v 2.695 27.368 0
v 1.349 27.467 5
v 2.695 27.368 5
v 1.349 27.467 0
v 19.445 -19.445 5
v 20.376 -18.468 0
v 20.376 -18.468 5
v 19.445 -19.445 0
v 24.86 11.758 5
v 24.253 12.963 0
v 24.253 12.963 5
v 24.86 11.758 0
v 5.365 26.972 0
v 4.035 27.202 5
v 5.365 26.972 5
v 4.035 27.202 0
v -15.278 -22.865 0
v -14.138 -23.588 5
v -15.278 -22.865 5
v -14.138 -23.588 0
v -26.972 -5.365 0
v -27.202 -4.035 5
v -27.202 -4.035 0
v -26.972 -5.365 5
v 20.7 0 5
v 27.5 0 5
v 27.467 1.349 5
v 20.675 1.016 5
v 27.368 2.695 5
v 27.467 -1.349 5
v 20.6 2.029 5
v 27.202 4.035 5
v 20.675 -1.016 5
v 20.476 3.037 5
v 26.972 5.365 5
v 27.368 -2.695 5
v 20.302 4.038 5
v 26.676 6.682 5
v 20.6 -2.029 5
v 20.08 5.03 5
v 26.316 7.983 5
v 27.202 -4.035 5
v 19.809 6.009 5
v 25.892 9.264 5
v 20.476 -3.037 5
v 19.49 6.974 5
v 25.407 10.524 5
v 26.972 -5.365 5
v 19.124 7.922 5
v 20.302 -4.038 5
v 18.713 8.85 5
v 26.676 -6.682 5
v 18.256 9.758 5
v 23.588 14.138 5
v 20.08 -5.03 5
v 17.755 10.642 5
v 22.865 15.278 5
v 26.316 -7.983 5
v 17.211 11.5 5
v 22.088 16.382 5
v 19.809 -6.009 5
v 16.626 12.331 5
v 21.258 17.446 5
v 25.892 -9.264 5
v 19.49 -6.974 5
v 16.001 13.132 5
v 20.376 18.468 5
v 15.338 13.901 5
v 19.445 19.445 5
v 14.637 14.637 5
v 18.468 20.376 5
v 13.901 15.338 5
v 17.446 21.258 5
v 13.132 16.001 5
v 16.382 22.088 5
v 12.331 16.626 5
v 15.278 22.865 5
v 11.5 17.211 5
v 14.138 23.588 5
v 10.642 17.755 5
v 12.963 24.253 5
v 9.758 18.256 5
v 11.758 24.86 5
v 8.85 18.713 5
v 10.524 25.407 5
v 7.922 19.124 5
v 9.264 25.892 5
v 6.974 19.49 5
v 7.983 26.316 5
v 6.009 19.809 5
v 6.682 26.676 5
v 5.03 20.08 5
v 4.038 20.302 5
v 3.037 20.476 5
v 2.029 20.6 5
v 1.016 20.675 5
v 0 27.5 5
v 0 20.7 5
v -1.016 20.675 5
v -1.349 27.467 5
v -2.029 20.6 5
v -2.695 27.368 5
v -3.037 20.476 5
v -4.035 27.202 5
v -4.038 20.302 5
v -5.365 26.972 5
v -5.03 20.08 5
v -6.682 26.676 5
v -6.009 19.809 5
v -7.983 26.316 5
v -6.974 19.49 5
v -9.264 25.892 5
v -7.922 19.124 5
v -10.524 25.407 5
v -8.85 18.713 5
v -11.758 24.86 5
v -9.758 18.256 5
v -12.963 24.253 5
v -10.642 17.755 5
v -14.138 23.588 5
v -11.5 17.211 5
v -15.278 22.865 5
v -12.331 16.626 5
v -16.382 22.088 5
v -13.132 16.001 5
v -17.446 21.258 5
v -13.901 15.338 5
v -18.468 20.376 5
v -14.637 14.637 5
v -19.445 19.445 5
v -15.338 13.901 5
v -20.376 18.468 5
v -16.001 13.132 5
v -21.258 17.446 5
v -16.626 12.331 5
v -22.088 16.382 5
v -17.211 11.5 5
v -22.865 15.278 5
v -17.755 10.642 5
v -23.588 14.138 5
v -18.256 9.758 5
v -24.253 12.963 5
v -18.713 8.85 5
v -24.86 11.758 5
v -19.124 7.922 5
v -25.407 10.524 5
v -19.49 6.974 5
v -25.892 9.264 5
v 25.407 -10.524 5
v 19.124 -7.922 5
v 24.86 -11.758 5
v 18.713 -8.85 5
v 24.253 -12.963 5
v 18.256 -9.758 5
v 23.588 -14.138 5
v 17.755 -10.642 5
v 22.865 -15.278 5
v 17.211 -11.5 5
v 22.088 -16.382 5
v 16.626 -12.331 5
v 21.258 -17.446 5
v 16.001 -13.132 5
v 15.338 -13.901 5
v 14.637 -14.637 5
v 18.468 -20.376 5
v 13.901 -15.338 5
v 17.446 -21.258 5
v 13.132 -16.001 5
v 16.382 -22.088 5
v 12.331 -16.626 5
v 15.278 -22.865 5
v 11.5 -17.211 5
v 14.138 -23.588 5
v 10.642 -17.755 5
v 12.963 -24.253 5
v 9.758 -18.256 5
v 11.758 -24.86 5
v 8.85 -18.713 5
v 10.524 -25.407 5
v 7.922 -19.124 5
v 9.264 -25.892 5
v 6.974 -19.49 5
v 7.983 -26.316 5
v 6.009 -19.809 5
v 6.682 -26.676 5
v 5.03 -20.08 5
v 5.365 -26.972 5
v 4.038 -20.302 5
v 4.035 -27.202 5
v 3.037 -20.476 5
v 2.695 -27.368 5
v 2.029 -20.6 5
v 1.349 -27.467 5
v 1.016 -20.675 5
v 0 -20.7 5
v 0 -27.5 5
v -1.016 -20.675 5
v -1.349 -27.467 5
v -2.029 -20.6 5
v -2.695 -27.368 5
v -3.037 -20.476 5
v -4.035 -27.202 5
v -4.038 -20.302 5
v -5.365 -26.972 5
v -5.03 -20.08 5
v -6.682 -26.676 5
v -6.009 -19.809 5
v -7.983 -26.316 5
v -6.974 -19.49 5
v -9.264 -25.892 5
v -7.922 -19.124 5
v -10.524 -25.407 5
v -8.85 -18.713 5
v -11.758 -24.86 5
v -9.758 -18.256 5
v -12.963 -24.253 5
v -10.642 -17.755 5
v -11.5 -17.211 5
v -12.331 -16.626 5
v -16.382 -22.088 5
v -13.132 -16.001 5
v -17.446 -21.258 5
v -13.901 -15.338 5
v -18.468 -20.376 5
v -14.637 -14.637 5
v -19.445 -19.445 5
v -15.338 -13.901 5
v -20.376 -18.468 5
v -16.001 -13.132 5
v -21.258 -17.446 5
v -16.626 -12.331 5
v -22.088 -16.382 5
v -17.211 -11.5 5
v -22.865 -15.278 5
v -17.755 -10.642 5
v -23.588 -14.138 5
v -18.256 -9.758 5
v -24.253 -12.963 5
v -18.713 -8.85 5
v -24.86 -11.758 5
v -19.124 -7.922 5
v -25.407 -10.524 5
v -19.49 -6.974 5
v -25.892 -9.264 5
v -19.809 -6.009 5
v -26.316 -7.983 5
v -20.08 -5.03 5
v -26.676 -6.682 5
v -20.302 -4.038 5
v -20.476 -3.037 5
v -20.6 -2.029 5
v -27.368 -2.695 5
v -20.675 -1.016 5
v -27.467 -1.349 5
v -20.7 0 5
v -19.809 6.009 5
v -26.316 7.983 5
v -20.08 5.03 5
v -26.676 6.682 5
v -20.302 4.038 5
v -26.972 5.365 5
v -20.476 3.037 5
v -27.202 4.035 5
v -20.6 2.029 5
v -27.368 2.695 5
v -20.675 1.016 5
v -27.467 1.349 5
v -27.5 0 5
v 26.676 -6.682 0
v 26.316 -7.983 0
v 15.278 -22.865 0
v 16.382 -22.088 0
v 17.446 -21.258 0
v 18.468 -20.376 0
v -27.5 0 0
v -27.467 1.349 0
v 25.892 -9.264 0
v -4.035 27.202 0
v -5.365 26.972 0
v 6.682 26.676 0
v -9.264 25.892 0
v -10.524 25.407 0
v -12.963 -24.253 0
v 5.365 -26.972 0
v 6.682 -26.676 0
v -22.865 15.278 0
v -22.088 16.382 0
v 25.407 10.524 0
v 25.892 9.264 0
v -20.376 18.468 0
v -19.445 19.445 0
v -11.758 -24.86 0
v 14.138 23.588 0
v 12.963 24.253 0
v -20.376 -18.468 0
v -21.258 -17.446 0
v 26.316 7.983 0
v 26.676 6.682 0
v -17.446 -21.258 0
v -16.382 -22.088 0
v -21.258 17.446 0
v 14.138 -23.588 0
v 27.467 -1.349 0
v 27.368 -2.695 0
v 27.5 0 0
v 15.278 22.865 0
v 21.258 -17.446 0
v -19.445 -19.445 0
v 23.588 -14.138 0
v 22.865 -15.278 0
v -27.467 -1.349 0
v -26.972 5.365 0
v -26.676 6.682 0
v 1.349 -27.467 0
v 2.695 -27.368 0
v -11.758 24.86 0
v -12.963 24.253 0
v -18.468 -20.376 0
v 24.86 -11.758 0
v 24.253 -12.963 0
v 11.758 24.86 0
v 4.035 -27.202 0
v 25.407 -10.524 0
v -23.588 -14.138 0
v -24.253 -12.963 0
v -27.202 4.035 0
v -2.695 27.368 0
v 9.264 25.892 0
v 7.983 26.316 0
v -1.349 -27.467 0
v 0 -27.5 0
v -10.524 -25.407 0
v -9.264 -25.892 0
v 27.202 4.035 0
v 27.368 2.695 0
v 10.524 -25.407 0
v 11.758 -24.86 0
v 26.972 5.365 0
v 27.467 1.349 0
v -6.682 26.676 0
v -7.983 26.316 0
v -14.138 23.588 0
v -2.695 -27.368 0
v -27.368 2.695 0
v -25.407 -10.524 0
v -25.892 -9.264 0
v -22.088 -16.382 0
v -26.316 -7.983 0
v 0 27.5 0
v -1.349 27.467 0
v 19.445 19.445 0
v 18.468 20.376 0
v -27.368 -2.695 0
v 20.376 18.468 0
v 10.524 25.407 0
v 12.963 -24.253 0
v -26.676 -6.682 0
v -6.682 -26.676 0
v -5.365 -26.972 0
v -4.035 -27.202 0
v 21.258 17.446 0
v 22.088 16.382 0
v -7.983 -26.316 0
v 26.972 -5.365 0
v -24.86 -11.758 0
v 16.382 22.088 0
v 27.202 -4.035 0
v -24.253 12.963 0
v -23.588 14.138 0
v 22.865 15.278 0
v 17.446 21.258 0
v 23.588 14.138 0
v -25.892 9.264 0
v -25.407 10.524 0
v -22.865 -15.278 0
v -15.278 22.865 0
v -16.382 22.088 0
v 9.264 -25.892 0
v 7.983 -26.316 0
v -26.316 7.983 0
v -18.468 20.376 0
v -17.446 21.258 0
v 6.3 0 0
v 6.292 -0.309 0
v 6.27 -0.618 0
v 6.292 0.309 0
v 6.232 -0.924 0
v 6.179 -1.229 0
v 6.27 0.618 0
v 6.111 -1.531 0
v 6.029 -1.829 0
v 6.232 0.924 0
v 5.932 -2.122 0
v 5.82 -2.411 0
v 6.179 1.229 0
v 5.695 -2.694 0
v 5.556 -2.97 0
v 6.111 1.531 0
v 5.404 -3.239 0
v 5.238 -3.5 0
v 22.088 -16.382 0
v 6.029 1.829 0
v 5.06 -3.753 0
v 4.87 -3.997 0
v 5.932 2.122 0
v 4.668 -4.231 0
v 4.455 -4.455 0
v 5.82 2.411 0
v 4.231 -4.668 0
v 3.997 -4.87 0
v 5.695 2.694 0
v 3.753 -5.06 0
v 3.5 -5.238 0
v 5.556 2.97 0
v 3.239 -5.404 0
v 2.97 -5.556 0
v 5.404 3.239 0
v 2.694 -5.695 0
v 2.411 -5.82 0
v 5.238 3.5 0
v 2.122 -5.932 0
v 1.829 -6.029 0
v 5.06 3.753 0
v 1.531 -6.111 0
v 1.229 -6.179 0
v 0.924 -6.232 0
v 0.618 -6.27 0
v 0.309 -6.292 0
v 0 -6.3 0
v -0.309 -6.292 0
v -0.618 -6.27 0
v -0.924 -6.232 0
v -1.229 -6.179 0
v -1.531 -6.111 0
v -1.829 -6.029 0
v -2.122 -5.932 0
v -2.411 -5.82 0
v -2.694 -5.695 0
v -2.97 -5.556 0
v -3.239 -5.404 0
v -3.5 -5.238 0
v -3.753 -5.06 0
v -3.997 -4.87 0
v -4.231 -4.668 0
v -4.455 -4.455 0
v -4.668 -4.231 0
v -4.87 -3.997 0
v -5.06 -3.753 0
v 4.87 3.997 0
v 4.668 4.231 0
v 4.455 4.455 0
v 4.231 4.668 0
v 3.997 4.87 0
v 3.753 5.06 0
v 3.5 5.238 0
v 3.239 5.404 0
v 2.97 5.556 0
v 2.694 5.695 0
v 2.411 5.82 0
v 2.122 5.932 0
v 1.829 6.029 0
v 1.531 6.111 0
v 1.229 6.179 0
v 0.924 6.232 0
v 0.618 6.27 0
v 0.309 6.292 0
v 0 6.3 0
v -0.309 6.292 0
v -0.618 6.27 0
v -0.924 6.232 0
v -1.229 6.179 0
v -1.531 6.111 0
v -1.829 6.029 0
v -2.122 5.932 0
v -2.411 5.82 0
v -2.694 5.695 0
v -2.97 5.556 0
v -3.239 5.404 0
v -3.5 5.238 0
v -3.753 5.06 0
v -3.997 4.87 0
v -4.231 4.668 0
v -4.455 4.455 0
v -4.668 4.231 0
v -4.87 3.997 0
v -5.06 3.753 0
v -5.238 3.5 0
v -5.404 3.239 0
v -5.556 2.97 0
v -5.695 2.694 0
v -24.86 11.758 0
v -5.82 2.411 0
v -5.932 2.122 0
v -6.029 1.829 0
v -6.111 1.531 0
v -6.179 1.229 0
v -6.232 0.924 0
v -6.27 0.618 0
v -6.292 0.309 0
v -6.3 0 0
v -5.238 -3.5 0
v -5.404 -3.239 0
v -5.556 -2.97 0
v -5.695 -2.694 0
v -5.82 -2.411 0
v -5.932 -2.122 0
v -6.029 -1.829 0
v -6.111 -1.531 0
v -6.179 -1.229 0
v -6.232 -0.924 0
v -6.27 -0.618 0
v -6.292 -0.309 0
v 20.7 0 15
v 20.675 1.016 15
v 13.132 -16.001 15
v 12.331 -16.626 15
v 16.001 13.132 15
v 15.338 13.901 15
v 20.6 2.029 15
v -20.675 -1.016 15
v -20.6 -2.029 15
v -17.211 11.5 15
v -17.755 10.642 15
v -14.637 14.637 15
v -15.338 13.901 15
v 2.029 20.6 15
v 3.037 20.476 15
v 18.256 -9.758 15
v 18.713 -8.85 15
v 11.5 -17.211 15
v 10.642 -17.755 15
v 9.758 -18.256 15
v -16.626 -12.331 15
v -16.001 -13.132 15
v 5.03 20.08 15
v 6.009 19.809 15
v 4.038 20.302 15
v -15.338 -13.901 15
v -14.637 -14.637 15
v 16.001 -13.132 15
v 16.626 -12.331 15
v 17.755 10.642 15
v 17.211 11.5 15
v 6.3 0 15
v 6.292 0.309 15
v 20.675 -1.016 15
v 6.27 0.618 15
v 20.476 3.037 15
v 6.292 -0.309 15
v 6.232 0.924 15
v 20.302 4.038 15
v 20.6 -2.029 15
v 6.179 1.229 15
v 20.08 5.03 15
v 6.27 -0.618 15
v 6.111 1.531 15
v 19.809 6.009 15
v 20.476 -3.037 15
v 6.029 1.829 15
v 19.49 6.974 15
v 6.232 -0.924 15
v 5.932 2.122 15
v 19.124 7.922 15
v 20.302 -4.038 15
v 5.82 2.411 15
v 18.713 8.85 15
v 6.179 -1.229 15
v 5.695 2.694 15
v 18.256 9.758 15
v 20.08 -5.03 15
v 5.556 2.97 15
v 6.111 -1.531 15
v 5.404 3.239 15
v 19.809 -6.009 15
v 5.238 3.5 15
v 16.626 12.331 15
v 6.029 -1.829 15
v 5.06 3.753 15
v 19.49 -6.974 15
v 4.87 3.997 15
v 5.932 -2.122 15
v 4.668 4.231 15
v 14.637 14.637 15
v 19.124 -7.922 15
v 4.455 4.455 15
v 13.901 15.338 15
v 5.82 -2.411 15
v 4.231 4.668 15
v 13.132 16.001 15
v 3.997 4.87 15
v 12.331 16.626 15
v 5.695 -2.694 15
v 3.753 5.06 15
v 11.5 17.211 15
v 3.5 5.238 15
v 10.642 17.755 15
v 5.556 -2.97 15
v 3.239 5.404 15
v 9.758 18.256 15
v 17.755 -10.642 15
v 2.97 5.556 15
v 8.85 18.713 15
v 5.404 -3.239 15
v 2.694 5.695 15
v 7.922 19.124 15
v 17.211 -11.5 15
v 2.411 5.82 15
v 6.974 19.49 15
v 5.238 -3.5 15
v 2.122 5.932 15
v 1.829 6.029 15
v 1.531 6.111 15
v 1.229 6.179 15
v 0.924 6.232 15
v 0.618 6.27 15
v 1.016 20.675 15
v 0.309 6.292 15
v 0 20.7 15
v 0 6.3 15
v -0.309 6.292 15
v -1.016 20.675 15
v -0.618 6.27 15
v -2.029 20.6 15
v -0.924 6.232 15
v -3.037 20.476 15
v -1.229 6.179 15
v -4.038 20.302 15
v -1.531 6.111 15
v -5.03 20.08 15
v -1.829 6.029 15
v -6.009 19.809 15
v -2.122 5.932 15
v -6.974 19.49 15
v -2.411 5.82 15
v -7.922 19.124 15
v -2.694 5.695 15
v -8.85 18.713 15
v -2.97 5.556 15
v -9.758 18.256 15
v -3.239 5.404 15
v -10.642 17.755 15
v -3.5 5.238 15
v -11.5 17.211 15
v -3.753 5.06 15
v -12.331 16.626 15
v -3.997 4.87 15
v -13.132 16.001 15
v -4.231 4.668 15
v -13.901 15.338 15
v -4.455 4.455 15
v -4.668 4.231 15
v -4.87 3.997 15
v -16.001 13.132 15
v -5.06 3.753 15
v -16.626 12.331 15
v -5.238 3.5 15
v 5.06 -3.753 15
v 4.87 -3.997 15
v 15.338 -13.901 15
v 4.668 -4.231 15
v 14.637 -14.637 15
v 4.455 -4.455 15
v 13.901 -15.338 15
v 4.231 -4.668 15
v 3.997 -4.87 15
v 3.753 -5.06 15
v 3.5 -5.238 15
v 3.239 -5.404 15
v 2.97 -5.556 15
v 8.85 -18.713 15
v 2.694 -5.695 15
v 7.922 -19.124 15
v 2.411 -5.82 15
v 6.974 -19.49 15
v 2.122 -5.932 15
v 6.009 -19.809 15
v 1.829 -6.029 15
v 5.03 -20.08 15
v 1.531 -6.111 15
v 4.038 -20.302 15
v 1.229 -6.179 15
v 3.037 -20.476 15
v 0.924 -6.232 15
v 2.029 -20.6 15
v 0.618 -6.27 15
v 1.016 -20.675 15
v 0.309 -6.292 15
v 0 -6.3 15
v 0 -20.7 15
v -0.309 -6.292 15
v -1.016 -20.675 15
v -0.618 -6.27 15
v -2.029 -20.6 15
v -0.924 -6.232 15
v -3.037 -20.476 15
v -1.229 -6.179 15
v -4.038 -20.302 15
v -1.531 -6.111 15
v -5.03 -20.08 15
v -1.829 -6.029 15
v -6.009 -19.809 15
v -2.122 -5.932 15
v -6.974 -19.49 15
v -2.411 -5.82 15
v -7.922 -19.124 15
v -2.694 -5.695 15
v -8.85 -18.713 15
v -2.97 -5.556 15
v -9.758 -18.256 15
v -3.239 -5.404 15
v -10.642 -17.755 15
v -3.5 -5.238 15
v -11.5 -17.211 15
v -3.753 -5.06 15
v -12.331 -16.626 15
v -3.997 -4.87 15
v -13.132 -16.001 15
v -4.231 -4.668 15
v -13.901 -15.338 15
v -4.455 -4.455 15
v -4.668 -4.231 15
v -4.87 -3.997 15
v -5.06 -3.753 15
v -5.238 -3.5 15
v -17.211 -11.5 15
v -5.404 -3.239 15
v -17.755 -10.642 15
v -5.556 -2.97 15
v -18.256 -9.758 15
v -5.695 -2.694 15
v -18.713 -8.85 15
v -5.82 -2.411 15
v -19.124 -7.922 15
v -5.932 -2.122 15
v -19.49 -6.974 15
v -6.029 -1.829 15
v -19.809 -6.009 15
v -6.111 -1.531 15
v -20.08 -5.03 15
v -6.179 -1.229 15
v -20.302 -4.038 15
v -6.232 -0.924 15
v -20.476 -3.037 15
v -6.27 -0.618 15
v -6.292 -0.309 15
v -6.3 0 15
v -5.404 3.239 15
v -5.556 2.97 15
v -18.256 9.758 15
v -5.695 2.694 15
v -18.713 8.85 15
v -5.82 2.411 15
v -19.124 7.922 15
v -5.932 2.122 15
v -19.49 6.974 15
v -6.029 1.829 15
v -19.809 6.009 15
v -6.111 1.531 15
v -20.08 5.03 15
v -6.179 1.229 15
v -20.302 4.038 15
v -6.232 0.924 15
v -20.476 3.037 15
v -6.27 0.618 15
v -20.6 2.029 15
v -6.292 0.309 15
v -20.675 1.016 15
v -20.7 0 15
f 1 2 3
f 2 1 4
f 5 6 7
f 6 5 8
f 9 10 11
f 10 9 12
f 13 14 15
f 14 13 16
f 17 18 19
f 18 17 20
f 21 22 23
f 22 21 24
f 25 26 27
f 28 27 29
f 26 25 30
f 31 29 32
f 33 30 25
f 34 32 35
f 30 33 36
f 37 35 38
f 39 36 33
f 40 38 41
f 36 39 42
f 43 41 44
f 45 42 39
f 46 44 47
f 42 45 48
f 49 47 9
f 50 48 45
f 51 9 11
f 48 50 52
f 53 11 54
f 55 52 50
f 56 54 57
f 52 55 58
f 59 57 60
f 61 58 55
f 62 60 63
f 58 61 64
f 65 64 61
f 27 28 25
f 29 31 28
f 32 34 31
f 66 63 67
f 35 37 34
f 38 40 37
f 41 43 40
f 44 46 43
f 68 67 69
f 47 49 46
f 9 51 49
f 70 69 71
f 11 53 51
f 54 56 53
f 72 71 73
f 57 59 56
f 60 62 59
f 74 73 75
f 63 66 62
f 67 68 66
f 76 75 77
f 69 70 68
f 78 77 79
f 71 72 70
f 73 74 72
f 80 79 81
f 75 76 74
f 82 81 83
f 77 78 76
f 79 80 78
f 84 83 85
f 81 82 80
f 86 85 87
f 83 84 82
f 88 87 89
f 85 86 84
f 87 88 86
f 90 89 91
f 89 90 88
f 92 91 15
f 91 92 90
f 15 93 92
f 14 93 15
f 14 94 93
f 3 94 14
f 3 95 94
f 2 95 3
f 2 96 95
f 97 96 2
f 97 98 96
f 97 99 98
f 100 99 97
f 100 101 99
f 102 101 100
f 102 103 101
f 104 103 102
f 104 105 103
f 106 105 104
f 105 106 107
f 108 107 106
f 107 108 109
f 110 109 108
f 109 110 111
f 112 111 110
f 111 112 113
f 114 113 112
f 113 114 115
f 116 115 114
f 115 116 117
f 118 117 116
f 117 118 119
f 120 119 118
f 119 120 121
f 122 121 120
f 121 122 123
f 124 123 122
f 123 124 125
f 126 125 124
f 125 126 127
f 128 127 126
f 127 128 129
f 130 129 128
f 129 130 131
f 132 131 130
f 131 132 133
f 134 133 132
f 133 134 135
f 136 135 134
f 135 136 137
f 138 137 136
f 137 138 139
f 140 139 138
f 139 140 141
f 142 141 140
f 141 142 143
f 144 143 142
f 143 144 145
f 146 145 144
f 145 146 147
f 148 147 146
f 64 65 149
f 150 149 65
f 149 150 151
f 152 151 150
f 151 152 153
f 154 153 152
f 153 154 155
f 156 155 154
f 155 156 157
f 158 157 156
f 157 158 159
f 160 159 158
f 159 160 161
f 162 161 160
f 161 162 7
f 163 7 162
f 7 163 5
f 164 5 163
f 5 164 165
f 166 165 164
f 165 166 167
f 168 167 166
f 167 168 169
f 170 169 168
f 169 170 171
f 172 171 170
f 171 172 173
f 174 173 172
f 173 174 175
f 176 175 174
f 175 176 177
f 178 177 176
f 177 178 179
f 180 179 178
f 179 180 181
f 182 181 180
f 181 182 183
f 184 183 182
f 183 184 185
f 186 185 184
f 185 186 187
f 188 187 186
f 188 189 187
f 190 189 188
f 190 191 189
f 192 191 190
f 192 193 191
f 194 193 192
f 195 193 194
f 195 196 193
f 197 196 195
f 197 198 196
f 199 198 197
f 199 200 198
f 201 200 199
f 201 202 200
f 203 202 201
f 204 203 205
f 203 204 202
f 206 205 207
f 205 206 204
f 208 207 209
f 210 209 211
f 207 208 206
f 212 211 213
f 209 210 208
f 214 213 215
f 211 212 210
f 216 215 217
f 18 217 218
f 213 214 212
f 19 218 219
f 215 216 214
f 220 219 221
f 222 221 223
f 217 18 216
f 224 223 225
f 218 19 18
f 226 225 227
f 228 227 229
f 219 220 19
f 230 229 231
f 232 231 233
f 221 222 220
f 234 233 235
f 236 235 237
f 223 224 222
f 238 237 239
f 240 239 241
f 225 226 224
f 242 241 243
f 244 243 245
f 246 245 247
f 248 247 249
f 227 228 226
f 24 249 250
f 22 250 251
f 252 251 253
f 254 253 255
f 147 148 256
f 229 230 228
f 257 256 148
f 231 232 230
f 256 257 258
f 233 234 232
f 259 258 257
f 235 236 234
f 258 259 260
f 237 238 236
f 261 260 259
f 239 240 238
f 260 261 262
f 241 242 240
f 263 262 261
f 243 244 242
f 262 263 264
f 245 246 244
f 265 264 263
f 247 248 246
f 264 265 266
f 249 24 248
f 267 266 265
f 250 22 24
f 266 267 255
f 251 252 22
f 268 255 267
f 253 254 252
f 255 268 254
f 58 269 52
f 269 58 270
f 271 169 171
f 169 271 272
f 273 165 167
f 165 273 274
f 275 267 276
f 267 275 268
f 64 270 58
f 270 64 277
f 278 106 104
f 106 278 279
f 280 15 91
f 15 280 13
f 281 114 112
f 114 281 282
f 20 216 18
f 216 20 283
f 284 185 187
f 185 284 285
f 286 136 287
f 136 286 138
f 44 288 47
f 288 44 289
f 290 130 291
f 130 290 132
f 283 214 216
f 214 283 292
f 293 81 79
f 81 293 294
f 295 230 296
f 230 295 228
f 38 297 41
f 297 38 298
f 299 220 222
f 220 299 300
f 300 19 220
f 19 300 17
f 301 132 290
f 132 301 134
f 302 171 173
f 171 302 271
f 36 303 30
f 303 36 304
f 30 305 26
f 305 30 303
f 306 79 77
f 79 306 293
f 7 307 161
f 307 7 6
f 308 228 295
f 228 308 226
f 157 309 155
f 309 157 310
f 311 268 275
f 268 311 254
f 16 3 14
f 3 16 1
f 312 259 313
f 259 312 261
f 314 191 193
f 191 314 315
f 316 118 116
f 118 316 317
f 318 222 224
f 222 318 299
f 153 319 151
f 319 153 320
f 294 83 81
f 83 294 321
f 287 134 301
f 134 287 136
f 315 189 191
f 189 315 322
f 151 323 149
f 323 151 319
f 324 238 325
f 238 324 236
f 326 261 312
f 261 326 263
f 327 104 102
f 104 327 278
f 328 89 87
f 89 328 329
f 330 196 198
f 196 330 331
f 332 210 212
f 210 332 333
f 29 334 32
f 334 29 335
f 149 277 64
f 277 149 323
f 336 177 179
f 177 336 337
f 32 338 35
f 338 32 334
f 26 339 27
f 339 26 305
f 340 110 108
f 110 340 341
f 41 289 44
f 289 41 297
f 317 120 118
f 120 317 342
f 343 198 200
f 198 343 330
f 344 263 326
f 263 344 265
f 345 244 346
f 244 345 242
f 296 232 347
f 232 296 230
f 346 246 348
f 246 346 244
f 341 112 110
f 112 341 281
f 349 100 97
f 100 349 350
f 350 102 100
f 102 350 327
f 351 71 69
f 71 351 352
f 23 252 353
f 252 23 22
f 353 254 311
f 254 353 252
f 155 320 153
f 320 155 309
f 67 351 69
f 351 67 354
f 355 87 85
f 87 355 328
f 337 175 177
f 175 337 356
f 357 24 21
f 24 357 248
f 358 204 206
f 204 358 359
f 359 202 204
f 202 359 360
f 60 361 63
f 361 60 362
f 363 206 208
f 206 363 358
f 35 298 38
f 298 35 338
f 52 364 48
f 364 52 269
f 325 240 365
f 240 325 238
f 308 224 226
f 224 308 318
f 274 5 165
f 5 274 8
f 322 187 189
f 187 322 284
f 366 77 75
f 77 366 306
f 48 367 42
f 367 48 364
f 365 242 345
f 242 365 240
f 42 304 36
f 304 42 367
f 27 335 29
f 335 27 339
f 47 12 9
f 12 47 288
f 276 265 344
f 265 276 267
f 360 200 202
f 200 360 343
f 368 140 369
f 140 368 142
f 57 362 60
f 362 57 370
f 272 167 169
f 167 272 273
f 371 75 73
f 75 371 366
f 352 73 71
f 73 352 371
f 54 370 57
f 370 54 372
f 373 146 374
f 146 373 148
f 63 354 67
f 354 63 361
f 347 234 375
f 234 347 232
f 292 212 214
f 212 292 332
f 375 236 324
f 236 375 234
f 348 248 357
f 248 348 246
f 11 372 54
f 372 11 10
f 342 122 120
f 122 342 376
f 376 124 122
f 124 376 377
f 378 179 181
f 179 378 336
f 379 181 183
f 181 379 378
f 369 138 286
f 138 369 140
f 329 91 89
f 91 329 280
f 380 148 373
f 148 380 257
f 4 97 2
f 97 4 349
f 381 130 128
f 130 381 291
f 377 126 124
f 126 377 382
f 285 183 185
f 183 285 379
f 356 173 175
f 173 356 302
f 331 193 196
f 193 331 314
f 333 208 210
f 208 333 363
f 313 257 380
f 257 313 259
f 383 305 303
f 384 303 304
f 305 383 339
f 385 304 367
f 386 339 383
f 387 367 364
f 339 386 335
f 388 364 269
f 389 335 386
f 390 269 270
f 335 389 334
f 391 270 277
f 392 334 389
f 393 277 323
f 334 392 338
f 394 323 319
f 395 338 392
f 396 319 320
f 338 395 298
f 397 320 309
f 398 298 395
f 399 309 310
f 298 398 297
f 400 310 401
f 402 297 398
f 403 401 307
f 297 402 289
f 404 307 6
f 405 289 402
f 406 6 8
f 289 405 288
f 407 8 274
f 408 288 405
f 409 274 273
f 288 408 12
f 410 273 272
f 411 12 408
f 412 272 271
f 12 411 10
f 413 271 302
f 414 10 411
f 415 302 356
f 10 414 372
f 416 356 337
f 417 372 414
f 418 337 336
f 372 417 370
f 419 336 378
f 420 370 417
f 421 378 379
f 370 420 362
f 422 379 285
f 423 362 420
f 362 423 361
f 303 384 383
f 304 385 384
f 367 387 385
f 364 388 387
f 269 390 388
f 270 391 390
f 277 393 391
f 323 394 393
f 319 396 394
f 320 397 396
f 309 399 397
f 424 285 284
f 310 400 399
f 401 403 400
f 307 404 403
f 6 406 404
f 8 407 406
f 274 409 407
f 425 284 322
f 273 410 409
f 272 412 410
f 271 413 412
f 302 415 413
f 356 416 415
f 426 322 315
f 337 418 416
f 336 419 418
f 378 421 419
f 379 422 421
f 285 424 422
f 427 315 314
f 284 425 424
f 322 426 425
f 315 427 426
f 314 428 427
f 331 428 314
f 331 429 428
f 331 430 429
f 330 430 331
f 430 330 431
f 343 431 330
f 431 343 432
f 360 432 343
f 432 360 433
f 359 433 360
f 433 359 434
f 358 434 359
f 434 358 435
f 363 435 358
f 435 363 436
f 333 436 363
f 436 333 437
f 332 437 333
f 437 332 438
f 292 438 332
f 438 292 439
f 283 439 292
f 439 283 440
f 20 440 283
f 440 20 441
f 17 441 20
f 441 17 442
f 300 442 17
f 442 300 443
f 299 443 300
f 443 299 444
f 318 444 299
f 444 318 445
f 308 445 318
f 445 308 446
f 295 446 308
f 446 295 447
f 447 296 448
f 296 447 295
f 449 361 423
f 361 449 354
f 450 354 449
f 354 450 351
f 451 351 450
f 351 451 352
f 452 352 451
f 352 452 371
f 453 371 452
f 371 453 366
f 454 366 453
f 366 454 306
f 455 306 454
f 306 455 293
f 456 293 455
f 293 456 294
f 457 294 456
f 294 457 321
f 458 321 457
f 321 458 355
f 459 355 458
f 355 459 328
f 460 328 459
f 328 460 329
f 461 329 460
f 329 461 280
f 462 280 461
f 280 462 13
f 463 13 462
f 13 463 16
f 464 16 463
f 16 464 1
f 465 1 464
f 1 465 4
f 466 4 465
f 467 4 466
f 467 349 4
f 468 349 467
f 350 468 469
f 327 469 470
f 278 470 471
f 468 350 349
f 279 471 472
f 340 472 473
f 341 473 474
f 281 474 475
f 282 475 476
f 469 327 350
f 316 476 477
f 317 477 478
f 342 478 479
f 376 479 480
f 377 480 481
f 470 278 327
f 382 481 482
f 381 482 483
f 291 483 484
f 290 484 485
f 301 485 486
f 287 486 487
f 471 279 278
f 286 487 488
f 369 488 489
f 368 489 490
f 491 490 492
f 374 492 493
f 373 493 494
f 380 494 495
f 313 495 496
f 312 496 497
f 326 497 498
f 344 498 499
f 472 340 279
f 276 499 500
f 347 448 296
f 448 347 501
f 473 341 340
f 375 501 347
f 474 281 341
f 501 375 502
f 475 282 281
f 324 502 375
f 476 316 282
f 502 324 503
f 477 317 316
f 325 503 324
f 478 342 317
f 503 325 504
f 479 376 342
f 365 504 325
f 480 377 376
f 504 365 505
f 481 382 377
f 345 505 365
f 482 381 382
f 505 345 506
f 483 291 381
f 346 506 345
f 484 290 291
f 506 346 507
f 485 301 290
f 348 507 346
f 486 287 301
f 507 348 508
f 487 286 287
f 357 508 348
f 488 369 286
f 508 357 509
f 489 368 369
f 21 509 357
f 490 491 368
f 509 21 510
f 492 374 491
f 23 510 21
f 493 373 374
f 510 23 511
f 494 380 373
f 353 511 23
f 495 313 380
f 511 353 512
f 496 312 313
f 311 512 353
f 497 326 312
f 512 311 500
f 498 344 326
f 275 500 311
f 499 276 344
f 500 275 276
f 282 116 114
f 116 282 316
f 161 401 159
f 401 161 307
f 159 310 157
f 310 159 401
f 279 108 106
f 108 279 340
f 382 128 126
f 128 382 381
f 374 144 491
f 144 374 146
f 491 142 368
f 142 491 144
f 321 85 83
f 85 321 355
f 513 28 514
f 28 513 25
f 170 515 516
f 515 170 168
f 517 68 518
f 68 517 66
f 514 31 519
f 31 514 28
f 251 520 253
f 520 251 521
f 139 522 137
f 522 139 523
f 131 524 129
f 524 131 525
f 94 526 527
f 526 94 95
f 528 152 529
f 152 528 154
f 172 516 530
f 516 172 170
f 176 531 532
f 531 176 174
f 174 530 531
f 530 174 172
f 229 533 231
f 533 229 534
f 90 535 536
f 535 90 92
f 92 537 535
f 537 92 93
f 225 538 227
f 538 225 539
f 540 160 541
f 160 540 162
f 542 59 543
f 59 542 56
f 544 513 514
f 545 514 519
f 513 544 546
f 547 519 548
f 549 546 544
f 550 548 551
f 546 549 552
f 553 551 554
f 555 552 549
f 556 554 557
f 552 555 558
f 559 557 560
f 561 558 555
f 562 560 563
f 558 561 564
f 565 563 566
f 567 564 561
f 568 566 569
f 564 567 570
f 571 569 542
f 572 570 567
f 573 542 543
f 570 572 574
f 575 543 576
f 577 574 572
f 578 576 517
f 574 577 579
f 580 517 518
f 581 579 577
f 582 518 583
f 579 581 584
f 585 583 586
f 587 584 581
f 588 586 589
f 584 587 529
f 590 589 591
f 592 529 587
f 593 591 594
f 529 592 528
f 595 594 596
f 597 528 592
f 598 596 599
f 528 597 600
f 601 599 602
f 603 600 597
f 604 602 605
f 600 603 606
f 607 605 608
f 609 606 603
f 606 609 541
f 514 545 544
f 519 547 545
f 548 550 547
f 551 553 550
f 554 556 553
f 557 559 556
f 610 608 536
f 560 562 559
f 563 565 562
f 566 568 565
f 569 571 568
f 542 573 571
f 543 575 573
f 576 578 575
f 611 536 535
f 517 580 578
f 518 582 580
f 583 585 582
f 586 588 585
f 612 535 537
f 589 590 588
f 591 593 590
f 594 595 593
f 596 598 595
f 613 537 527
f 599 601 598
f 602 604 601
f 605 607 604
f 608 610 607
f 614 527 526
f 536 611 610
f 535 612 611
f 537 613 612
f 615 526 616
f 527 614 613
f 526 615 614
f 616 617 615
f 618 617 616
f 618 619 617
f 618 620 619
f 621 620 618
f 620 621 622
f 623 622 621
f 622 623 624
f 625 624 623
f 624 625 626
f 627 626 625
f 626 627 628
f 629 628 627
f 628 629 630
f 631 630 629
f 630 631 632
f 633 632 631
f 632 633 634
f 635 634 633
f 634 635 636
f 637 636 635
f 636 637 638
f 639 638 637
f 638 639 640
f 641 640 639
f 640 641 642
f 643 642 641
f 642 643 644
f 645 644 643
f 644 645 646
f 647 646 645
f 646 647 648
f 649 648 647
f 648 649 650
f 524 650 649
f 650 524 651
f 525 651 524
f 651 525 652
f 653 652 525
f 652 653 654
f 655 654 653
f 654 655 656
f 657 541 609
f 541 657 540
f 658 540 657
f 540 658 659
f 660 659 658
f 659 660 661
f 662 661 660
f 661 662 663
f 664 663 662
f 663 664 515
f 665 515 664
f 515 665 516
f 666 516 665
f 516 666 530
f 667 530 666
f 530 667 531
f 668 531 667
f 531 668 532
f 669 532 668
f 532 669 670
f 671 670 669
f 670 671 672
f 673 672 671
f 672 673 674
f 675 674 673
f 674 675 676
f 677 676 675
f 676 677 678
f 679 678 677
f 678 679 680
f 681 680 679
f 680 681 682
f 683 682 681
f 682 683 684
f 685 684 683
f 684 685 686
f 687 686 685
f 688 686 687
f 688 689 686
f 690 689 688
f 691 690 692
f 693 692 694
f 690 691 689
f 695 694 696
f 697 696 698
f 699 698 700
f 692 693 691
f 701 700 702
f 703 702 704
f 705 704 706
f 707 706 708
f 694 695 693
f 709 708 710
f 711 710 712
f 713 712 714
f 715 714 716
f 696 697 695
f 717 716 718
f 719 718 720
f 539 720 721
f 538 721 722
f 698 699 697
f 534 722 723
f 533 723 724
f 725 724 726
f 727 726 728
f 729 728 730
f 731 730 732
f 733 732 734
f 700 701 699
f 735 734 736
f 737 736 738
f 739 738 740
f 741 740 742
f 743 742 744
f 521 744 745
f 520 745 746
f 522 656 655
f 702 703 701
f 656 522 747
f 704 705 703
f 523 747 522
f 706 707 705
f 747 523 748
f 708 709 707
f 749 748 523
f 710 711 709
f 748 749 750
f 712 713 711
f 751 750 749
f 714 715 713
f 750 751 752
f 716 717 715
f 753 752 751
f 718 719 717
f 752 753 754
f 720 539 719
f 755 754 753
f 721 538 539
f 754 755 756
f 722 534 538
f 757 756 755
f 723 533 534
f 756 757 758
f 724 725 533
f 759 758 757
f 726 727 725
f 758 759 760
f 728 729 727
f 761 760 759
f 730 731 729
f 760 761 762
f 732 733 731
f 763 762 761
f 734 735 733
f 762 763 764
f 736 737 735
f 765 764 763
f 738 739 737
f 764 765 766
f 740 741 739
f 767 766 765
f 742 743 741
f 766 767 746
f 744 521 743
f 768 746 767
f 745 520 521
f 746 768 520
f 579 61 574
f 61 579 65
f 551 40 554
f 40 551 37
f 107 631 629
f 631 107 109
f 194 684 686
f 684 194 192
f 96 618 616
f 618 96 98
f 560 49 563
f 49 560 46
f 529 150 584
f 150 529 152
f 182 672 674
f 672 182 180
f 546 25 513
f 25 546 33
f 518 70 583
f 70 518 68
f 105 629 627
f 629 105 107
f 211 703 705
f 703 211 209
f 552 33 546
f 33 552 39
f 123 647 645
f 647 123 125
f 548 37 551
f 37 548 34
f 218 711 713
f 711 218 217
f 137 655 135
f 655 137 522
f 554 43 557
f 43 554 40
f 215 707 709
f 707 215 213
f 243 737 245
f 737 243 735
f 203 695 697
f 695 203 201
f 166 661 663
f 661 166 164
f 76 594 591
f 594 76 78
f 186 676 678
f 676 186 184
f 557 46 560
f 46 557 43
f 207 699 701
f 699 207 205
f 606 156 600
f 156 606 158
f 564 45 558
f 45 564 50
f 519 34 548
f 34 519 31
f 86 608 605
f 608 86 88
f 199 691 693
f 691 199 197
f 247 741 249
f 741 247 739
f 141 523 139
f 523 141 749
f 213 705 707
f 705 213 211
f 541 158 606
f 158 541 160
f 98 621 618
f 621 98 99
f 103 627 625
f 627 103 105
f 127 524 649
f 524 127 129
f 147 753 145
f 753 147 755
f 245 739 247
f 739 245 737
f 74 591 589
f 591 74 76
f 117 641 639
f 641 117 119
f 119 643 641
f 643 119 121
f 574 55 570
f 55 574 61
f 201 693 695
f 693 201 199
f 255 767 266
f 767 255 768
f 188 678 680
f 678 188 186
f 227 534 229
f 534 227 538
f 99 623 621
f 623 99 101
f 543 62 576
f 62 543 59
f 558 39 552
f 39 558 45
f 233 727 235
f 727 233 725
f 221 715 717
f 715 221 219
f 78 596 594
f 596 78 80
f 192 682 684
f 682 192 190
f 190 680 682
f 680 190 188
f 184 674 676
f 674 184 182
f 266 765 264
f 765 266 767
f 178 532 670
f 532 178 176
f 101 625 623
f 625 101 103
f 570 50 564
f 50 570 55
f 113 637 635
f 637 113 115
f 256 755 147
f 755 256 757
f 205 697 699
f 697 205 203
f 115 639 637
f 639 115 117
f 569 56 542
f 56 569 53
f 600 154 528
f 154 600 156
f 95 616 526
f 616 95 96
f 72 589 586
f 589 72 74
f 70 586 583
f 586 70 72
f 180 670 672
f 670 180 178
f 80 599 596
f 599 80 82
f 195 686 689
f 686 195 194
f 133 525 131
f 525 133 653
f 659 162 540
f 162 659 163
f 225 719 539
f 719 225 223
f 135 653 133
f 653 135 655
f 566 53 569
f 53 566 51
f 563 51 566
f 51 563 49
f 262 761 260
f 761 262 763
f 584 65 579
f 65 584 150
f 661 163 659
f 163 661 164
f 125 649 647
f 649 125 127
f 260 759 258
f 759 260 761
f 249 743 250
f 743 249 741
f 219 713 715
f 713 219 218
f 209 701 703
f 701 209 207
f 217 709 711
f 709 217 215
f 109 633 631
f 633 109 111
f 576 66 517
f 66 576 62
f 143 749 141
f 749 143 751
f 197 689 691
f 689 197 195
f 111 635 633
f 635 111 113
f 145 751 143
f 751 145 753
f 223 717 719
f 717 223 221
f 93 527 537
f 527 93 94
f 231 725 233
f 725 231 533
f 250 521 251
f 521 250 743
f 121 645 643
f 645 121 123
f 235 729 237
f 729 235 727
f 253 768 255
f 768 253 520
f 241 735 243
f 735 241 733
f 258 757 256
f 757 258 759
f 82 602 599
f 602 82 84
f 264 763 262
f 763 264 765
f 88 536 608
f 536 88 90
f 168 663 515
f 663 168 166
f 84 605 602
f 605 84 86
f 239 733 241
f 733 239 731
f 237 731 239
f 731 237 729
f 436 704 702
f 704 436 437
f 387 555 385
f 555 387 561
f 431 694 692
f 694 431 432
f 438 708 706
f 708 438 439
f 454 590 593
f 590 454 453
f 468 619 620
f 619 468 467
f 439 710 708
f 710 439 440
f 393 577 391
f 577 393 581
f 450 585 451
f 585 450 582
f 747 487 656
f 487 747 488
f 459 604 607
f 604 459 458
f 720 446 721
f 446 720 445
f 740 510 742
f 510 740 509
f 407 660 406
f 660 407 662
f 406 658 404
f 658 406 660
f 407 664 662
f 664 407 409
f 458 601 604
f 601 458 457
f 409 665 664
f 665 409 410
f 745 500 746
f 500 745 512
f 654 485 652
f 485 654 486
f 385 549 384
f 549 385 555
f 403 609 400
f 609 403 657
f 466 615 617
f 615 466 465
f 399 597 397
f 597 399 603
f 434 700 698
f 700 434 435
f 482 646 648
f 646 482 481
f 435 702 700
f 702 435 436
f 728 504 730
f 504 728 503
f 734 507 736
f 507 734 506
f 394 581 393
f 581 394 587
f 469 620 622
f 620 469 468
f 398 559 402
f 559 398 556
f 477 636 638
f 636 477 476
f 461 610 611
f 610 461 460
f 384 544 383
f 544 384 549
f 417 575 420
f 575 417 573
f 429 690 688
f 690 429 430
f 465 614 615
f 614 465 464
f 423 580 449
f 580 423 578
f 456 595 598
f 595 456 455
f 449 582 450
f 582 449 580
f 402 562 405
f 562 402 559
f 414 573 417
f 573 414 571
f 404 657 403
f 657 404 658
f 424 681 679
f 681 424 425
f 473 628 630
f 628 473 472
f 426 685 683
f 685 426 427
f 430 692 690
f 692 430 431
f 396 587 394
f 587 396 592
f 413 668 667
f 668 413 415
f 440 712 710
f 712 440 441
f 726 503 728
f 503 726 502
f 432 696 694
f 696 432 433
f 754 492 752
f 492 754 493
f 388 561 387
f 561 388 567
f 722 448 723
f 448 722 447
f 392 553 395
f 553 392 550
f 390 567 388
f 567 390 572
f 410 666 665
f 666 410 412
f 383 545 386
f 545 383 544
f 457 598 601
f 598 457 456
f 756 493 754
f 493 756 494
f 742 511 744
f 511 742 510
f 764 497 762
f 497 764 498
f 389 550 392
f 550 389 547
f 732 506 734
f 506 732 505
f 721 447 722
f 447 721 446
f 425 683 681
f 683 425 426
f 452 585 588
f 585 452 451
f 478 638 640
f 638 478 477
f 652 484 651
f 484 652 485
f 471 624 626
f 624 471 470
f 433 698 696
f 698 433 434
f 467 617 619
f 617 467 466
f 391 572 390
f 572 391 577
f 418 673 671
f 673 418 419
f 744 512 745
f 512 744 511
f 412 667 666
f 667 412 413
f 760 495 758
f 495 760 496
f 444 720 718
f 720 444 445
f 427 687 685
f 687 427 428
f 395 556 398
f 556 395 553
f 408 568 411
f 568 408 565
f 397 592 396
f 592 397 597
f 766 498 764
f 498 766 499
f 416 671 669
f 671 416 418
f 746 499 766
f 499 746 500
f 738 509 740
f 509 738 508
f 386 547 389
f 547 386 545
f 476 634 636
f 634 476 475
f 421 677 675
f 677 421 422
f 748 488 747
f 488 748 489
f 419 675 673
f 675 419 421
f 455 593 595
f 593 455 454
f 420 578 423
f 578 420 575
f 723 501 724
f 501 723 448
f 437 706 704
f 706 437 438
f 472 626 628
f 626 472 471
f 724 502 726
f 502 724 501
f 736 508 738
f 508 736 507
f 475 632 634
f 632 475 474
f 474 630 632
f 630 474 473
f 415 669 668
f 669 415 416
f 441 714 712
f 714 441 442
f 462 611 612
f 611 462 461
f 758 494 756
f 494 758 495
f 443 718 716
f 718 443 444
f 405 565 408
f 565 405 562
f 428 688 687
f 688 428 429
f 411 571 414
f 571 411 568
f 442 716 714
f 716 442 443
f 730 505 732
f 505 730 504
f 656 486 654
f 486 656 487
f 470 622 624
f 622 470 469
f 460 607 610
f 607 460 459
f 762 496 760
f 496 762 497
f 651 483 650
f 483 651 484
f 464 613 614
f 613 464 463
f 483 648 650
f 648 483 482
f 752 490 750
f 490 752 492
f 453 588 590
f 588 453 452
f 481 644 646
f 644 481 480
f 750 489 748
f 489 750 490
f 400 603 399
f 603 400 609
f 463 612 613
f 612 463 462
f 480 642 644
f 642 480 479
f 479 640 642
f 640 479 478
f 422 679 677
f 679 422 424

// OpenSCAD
difference() {
    union() {
        linear_extrude(5)
            circle(d=55, $fn=128);
        linear_extrude(15)
            circle(d=41.4, $fn=128);
     }
     linear_extrude(15)
        circle(d=12.6, $fn=128);
}
